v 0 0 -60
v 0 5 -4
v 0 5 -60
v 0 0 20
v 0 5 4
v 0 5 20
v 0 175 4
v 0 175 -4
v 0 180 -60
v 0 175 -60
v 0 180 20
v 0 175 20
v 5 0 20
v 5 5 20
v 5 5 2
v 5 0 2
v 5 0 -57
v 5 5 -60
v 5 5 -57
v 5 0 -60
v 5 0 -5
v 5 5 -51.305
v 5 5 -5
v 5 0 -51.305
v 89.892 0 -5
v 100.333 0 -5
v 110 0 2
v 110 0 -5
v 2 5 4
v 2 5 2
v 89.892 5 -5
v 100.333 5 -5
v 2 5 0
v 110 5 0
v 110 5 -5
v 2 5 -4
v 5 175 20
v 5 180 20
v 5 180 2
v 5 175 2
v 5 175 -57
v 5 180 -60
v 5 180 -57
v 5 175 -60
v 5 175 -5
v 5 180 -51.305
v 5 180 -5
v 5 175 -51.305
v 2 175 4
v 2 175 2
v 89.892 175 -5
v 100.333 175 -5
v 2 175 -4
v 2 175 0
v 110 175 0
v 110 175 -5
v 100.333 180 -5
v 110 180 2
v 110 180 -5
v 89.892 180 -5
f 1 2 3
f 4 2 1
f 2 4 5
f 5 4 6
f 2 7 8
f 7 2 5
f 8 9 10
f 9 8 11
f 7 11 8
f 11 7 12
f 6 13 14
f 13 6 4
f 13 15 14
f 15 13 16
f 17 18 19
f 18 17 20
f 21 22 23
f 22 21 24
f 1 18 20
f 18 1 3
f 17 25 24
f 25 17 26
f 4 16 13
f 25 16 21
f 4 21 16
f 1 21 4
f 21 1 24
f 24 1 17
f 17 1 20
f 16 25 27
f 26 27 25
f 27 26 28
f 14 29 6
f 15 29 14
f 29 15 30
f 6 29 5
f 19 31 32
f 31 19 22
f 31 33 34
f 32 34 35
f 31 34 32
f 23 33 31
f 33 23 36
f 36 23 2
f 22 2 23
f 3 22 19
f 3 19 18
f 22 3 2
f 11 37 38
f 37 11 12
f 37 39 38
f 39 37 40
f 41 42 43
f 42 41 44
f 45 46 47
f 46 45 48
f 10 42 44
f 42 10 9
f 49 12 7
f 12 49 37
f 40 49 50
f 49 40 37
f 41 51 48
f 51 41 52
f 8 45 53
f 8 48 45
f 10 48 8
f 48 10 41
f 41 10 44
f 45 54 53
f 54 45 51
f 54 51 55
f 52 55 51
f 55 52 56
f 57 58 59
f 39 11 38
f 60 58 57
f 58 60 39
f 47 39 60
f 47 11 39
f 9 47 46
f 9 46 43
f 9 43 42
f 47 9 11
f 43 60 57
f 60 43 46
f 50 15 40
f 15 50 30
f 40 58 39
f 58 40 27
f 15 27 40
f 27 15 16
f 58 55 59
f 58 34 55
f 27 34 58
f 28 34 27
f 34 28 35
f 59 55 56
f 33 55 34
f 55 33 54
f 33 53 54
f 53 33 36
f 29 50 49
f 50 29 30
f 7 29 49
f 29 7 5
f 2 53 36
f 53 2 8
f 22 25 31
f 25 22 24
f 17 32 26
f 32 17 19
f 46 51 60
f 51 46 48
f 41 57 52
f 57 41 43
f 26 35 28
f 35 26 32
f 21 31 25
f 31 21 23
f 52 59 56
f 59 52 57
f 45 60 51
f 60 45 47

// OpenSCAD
ShelfLength = 180;
ShelfWidth = 110;
ShelfHeight = 8;
WallThickness = 2;

ColumnSize = 5;
ColumnHeight = 80;
ColumnOffset = 20;
ColumnHoleRadius = 0;

// Main surface
cube([ShelfWidth, ShelfLength, WallThickness], center=false);

// Backwall reenforcement
translate([0, 0, ShelfHeight/2]) {
    rotate([0, 90, 0]) {
        cube([ShelfHeight, ShelfLength, WallThickness], center=false);
    }
}

/* 
// Front reenforcement - cannot print, turn off!!!
translate([ShelfWidth, 0, 0-ColumnSize]) {
    cube([WallThickness, ShelfLength, ColumnSize + WallThickness], center=false);
}
*/

// Triangle reenforcement
translate([5, 0, -(ColumnHeight-ColumnOffset) + 3]) {
    rotate([0, -atan((ColumnHeight-ColumnOffset)/ShelfWidth),0]) {
        cube([sqrt(ShelfWidth*ShelfWidth + (ColumnHeight-ColumnOffset)*(ColumnHeight-ColumnOffset)) - 15, ColumnSize, ColumnSize], center=false);
    }
}

// Triangle reenforcement
translate([5, ShelfLength-ColumnSize, -(ColumnHeight-ColumnOffset) + 3]) {
    rotate([0, -atan((ColumnHeight-ColumnOffset)/ShelfWidth),0]) {
        cube([sqrt(ShelfWidth*ShelfWidth + (ColumnHeight-ColumnOffset)*(ColumnHeight-ColumnOffset)) - 15, ColumnSize, ColumnSize], center=false);
    }
}

// Surface reenforcement
translate([0, 0, -ColumnSize]) {
    cube([ShelfWidth, ColumnSize, ColumnSize], center=false);
}

// Surface reenforcement
translate([0, ShelfLength-ColumnSize, -ColumnSize]) {
    cube([ShelfWidth, ColumnSize, ColumnSize], center=false);
}

// Backwall vertical reenforcement
difference () {
    translate([0, 0, -ColumnHeight/2 - ColumnOffset]) {
        cube([ColumnSize, ColumnSize, ColumnHeight], center=false);
    }
    
    translate([0, ColumnSize/2, ColumnOffset - ColumnSize]) {
        rotate([0, 90, 0]) {
            cylinder(h = ColumnSize, r = ColumnHoleRadius, center = false);
        }
    }
}

difference () {
    translate([0, ShelfLength - ColumnSize, -ColumnHeight/2 - ColumnOffset]) {
        cube([ColumnSize, ColumnSize, ColumnHeight], center=false);
    }

    translate([0, ShelfLength - ColumnSize/2, ColumnOffset - ColumnSize]) {
        rotate([0, 90, 0]) {
            cylinder(h = ColumnSize, r = ColumnHoleRadius, center = false);
        }
    }
}


/*
translate([PSUWidth-0.2, 8, 18]) {
    rotate([90, 0, 90]) {
        linear_extrude(height = 1/2){
            text("110-220V Input", size=3, font="Arial Black");
        }
    }
}

translate([PSUWidth-0.2, 5, 8]) {
    rotate([90, 0, 90]) {
        linear_extrude(height = 1/2){
            text("4V 1.25A Output", size=3, font="Arial Black");
        }
    }
}
*/
